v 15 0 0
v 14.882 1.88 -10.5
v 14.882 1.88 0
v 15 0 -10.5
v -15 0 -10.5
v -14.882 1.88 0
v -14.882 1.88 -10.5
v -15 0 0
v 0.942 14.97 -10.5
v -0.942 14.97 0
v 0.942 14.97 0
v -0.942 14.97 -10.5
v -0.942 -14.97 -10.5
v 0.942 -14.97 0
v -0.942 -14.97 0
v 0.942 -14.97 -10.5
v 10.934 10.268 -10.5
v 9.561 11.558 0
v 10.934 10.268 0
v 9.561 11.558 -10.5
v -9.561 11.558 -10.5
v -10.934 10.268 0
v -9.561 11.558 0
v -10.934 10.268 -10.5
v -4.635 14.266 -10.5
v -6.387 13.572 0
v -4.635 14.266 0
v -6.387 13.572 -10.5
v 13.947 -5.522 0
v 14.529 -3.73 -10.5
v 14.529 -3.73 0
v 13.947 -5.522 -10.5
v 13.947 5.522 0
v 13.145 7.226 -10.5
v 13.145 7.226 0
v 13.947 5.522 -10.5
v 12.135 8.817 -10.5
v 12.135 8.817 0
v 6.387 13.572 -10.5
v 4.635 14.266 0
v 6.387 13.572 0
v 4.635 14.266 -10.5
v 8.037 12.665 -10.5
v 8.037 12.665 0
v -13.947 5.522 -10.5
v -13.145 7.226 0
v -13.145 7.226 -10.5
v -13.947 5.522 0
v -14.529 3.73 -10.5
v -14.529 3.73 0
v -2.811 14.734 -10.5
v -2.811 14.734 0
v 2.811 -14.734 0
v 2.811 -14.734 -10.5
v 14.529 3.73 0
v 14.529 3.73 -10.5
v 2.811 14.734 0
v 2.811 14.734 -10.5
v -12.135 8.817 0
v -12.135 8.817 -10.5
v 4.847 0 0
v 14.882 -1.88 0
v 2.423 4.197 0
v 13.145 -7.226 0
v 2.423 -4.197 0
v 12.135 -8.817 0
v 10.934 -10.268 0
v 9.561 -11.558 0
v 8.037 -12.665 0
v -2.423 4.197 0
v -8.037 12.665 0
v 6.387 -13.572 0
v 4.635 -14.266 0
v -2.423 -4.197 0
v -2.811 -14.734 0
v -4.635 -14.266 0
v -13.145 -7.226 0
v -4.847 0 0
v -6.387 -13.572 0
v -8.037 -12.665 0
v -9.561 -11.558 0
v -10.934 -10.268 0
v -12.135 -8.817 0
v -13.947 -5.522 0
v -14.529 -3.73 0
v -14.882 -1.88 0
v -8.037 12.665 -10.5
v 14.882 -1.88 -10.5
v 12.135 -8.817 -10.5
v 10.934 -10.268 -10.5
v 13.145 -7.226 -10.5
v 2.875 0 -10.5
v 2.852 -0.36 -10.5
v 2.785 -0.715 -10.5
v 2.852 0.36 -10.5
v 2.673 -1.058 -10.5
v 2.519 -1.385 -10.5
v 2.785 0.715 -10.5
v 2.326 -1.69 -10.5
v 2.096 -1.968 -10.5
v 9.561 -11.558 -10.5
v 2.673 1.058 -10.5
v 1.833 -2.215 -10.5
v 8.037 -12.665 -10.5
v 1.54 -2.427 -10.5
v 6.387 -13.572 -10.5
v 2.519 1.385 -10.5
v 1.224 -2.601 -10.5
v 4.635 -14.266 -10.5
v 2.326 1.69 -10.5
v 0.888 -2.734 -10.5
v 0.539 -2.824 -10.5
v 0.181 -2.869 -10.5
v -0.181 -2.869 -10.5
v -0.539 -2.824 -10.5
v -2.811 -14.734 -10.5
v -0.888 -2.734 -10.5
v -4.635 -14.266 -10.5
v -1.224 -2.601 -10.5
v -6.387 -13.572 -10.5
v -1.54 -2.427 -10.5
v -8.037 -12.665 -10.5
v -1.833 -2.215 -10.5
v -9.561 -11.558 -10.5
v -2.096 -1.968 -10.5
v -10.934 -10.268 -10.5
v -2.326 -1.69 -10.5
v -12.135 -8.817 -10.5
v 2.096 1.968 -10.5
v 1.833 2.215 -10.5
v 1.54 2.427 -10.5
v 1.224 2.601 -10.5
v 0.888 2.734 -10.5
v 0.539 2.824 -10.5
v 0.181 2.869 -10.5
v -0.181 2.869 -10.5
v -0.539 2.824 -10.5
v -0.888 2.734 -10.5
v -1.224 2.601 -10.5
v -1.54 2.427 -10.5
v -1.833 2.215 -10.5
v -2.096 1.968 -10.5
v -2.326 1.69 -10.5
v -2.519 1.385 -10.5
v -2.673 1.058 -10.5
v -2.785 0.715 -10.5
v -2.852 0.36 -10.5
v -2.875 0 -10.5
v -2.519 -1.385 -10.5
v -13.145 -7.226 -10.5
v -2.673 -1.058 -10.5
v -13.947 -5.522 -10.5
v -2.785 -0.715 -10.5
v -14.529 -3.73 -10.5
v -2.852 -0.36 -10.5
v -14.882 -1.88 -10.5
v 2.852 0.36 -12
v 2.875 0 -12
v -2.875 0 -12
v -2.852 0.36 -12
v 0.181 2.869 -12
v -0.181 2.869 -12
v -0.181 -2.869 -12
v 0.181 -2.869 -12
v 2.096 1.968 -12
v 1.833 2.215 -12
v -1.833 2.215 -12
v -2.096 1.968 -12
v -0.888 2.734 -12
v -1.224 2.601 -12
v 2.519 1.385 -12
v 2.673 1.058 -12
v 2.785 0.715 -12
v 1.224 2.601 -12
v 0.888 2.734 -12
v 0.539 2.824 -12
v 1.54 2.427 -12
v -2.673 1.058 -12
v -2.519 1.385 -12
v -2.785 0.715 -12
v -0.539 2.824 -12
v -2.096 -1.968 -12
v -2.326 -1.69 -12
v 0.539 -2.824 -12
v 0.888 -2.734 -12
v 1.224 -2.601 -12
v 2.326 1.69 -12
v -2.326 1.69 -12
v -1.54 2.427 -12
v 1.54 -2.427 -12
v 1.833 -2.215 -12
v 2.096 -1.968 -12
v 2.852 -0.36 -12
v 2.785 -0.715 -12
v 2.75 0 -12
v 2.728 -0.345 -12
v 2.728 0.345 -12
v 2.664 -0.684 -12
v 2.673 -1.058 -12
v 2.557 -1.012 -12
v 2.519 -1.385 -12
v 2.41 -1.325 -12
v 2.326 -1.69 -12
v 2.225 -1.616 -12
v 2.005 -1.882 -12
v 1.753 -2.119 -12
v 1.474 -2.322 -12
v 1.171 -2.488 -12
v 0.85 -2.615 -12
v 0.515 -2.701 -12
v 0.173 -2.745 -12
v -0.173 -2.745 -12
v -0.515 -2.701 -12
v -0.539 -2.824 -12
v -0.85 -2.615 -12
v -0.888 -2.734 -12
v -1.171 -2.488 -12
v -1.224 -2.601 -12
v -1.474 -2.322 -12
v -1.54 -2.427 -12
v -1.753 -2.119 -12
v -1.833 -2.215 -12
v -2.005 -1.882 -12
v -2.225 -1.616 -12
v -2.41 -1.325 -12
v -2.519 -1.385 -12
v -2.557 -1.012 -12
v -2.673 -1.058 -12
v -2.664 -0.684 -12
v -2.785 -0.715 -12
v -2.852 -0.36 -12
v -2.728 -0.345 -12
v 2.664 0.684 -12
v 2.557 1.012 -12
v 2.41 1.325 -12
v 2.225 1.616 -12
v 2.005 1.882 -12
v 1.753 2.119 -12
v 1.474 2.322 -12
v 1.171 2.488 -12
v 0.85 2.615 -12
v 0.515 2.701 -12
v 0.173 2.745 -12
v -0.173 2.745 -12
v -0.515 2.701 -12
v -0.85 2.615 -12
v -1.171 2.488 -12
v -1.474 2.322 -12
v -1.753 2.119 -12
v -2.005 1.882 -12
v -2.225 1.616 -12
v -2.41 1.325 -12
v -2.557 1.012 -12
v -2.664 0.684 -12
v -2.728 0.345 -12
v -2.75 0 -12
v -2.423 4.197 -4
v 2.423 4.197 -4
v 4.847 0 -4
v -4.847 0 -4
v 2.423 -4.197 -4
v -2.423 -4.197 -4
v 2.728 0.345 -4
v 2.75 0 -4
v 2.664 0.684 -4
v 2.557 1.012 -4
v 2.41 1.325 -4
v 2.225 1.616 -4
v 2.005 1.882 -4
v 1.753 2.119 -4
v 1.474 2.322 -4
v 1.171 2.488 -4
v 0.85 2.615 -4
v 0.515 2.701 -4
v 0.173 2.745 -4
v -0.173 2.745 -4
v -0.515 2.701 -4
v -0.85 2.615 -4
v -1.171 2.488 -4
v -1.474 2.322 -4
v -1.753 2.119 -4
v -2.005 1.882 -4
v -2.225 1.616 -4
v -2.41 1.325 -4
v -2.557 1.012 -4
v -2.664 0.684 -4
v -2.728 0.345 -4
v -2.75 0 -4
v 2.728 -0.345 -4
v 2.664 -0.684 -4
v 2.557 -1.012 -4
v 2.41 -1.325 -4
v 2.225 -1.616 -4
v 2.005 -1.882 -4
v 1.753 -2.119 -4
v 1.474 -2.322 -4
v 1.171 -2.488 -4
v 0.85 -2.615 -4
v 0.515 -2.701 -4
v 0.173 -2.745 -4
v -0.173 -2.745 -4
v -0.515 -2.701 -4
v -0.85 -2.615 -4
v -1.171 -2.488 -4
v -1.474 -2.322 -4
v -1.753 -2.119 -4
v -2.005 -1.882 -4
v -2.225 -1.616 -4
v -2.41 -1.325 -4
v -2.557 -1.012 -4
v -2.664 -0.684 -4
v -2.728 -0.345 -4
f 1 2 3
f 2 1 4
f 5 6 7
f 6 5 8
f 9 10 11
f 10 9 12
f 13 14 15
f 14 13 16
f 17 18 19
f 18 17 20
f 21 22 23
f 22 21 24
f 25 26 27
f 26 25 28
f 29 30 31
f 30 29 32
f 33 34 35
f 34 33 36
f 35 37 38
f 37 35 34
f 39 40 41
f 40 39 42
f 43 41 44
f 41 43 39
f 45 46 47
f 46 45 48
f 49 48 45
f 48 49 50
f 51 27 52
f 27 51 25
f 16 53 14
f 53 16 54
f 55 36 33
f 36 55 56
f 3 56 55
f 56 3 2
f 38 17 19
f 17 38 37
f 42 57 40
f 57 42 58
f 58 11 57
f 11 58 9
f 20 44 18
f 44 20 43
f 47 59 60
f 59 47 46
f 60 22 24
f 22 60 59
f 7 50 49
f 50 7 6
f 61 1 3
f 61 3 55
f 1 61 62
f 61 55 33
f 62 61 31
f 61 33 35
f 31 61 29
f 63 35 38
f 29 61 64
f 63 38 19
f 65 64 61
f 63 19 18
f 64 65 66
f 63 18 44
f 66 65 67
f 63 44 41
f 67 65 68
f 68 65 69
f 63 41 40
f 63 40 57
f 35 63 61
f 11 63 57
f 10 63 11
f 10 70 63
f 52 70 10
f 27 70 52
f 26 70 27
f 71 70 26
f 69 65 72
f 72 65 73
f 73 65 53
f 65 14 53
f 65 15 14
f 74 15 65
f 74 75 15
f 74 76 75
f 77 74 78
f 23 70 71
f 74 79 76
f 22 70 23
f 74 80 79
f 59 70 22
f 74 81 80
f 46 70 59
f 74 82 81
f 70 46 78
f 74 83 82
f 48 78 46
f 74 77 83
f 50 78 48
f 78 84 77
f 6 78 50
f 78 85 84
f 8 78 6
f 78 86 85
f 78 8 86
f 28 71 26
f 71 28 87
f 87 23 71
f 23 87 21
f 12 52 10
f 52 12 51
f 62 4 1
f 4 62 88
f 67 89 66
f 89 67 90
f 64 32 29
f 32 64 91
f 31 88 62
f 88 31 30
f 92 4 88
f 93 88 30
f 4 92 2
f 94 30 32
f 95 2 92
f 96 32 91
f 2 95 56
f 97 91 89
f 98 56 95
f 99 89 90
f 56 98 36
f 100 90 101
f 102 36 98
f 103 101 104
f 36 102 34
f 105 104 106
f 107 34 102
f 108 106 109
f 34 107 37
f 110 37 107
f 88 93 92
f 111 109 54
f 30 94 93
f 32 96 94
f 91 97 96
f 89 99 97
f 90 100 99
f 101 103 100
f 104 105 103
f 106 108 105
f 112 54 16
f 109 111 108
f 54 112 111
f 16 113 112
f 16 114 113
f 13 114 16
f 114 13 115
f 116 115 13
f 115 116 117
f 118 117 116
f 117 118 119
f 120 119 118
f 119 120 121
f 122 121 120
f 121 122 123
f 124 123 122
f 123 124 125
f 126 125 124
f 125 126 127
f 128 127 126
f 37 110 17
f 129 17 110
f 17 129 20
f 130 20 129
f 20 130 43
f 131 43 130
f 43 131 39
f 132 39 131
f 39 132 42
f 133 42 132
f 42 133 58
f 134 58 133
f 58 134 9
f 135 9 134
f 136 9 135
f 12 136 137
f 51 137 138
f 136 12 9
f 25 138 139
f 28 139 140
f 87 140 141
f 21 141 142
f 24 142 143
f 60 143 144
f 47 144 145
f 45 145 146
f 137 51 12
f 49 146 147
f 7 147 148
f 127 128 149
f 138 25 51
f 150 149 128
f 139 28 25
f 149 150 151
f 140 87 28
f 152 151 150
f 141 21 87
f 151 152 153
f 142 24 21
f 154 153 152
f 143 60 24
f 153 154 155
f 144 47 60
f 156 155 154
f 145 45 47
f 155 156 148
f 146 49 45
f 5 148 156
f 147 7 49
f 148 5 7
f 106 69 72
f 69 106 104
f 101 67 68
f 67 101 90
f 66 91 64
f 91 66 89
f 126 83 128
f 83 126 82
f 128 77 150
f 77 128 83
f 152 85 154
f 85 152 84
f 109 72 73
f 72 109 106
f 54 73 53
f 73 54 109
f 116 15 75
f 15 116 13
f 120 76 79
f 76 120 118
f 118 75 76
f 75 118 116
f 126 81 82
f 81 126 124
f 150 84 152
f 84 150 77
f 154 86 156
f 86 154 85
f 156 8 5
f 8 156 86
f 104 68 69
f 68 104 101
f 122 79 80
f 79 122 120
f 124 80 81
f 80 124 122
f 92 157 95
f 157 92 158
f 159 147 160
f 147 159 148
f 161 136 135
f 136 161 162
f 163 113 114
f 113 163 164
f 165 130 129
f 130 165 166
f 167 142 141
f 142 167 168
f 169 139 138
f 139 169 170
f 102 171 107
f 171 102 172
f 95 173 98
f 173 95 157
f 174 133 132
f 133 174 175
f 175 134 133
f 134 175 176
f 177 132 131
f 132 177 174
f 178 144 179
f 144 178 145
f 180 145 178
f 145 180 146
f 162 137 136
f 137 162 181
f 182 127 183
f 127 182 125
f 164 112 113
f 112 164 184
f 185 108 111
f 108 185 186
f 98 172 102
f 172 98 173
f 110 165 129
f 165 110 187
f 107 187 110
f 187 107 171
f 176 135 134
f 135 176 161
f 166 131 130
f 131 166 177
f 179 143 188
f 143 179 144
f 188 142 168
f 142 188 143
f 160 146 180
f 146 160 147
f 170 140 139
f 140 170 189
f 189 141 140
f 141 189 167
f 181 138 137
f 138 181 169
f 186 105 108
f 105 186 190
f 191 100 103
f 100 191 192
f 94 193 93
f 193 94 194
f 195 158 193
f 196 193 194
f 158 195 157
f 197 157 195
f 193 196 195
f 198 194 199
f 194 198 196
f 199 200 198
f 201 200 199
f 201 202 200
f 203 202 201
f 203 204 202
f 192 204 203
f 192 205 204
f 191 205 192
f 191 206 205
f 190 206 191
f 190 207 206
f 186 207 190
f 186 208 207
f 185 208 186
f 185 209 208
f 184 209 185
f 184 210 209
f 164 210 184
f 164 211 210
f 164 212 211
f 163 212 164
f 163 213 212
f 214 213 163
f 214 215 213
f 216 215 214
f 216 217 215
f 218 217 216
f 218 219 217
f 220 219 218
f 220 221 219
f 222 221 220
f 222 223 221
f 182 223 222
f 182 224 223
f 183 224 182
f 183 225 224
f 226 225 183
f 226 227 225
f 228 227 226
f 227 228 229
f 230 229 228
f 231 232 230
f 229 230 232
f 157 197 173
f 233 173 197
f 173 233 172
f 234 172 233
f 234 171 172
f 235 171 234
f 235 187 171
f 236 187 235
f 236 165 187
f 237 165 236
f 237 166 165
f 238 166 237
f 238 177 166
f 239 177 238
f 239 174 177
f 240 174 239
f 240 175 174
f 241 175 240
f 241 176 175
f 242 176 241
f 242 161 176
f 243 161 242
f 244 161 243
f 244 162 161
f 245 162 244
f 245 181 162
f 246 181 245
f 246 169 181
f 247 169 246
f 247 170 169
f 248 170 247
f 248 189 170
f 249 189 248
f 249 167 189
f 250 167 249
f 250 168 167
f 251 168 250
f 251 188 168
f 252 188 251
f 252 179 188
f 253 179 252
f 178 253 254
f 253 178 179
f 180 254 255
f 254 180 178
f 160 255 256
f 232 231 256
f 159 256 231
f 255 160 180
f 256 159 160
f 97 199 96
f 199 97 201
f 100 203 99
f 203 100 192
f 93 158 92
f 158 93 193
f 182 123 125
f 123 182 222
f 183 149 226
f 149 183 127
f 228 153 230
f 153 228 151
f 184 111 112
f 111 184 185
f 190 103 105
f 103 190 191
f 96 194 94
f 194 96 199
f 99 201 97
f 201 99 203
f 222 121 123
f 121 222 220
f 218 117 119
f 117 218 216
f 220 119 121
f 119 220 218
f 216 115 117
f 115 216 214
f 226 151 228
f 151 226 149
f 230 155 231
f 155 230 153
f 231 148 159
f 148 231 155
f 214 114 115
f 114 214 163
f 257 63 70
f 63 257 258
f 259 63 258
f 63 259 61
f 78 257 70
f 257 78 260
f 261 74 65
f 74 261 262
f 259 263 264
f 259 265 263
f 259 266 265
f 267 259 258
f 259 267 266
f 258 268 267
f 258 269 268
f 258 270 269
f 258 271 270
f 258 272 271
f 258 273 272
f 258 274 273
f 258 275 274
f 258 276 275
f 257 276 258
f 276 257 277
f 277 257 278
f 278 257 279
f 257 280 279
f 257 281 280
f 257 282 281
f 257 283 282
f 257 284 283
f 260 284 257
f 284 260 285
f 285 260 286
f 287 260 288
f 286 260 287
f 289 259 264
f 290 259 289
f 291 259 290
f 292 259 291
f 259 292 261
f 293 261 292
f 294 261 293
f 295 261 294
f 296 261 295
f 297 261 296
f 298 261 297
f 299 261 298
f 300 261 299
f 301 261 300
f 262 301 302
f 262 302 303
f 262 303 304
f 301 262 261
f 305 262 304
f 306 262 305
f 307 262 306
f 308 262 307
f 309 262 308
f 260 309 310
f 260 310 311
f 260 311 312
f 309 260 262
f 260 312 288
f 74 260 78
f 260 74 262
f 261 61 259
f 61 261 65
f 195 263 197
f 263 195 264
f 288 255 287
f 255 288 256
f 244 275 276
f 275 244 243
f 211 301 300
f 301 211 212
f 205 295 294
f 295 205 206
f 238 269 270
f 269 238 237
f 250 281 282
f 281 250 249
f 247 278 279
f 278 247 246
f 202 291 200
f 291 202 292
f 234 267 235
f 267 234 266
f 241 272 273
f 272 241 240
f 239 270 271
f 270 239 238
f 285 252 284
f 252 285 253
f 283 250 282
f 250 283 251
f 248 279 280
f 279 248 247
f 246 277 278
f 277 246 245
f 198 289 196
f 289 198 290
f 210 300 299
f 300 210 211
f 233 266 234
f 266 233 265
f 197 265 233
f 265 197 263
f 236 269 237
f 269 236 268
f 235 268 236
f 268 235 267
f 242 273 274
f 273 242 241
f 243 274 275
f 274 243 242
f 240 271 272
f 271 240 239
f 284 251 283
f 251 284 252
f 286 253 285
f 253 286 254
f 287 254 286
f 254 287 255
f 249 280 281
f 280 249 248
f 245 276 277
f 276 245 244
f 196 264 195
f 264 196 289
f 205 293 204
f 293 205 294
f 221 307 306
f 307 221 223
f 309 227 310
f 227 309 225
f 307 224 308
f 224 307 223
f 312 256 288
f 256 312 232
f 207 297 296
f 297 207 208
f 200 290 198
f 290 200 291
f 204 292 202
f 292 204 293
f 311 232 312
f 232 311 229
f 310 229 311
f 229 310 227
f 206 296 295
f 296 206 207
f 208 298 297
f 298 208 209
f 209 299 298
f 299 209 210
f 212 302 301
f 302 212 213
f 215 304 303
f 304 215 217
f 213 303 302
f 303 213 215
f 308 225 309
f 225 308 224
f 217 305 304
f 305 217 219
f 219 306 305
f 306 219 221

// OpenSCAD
$fn = 50;


difference() {
	union() {
		translate(v = [0, 0, -10.5000000000]) {
			cylinder(h = 10.5000000000, r = 15.0000000000);
		}
		translate(v = [0, 0, -12.0000000000]) {
			cylinder(h = 12, r = 2.8750000000);
		}
	}
	union() {
		translate(v = [0, 0, 0]) {
			rotate(a = [0, 0, 0]) {
				difference() {
					union() {
						translate(v = [0, 0, -4]) {
							linear_extrude(height = 4) {
								polygon(points = [[4.8468000000, 0.0000000000], [2.4234000000, 4.1974519271], [-2.4234000000, 4.1974519271], [-4.8468000000, 0.0000000000], [-2.4234000000, -4.1974519271], [2.4234000000, -4.1974519271]]);
							}
						}
					}
					union();
				}
			}
		}
		#translate(v = [0, 0, -100.0000000000]) {
			cylinder(h = 200, r = 2.7500000000);
		}
	}
}
